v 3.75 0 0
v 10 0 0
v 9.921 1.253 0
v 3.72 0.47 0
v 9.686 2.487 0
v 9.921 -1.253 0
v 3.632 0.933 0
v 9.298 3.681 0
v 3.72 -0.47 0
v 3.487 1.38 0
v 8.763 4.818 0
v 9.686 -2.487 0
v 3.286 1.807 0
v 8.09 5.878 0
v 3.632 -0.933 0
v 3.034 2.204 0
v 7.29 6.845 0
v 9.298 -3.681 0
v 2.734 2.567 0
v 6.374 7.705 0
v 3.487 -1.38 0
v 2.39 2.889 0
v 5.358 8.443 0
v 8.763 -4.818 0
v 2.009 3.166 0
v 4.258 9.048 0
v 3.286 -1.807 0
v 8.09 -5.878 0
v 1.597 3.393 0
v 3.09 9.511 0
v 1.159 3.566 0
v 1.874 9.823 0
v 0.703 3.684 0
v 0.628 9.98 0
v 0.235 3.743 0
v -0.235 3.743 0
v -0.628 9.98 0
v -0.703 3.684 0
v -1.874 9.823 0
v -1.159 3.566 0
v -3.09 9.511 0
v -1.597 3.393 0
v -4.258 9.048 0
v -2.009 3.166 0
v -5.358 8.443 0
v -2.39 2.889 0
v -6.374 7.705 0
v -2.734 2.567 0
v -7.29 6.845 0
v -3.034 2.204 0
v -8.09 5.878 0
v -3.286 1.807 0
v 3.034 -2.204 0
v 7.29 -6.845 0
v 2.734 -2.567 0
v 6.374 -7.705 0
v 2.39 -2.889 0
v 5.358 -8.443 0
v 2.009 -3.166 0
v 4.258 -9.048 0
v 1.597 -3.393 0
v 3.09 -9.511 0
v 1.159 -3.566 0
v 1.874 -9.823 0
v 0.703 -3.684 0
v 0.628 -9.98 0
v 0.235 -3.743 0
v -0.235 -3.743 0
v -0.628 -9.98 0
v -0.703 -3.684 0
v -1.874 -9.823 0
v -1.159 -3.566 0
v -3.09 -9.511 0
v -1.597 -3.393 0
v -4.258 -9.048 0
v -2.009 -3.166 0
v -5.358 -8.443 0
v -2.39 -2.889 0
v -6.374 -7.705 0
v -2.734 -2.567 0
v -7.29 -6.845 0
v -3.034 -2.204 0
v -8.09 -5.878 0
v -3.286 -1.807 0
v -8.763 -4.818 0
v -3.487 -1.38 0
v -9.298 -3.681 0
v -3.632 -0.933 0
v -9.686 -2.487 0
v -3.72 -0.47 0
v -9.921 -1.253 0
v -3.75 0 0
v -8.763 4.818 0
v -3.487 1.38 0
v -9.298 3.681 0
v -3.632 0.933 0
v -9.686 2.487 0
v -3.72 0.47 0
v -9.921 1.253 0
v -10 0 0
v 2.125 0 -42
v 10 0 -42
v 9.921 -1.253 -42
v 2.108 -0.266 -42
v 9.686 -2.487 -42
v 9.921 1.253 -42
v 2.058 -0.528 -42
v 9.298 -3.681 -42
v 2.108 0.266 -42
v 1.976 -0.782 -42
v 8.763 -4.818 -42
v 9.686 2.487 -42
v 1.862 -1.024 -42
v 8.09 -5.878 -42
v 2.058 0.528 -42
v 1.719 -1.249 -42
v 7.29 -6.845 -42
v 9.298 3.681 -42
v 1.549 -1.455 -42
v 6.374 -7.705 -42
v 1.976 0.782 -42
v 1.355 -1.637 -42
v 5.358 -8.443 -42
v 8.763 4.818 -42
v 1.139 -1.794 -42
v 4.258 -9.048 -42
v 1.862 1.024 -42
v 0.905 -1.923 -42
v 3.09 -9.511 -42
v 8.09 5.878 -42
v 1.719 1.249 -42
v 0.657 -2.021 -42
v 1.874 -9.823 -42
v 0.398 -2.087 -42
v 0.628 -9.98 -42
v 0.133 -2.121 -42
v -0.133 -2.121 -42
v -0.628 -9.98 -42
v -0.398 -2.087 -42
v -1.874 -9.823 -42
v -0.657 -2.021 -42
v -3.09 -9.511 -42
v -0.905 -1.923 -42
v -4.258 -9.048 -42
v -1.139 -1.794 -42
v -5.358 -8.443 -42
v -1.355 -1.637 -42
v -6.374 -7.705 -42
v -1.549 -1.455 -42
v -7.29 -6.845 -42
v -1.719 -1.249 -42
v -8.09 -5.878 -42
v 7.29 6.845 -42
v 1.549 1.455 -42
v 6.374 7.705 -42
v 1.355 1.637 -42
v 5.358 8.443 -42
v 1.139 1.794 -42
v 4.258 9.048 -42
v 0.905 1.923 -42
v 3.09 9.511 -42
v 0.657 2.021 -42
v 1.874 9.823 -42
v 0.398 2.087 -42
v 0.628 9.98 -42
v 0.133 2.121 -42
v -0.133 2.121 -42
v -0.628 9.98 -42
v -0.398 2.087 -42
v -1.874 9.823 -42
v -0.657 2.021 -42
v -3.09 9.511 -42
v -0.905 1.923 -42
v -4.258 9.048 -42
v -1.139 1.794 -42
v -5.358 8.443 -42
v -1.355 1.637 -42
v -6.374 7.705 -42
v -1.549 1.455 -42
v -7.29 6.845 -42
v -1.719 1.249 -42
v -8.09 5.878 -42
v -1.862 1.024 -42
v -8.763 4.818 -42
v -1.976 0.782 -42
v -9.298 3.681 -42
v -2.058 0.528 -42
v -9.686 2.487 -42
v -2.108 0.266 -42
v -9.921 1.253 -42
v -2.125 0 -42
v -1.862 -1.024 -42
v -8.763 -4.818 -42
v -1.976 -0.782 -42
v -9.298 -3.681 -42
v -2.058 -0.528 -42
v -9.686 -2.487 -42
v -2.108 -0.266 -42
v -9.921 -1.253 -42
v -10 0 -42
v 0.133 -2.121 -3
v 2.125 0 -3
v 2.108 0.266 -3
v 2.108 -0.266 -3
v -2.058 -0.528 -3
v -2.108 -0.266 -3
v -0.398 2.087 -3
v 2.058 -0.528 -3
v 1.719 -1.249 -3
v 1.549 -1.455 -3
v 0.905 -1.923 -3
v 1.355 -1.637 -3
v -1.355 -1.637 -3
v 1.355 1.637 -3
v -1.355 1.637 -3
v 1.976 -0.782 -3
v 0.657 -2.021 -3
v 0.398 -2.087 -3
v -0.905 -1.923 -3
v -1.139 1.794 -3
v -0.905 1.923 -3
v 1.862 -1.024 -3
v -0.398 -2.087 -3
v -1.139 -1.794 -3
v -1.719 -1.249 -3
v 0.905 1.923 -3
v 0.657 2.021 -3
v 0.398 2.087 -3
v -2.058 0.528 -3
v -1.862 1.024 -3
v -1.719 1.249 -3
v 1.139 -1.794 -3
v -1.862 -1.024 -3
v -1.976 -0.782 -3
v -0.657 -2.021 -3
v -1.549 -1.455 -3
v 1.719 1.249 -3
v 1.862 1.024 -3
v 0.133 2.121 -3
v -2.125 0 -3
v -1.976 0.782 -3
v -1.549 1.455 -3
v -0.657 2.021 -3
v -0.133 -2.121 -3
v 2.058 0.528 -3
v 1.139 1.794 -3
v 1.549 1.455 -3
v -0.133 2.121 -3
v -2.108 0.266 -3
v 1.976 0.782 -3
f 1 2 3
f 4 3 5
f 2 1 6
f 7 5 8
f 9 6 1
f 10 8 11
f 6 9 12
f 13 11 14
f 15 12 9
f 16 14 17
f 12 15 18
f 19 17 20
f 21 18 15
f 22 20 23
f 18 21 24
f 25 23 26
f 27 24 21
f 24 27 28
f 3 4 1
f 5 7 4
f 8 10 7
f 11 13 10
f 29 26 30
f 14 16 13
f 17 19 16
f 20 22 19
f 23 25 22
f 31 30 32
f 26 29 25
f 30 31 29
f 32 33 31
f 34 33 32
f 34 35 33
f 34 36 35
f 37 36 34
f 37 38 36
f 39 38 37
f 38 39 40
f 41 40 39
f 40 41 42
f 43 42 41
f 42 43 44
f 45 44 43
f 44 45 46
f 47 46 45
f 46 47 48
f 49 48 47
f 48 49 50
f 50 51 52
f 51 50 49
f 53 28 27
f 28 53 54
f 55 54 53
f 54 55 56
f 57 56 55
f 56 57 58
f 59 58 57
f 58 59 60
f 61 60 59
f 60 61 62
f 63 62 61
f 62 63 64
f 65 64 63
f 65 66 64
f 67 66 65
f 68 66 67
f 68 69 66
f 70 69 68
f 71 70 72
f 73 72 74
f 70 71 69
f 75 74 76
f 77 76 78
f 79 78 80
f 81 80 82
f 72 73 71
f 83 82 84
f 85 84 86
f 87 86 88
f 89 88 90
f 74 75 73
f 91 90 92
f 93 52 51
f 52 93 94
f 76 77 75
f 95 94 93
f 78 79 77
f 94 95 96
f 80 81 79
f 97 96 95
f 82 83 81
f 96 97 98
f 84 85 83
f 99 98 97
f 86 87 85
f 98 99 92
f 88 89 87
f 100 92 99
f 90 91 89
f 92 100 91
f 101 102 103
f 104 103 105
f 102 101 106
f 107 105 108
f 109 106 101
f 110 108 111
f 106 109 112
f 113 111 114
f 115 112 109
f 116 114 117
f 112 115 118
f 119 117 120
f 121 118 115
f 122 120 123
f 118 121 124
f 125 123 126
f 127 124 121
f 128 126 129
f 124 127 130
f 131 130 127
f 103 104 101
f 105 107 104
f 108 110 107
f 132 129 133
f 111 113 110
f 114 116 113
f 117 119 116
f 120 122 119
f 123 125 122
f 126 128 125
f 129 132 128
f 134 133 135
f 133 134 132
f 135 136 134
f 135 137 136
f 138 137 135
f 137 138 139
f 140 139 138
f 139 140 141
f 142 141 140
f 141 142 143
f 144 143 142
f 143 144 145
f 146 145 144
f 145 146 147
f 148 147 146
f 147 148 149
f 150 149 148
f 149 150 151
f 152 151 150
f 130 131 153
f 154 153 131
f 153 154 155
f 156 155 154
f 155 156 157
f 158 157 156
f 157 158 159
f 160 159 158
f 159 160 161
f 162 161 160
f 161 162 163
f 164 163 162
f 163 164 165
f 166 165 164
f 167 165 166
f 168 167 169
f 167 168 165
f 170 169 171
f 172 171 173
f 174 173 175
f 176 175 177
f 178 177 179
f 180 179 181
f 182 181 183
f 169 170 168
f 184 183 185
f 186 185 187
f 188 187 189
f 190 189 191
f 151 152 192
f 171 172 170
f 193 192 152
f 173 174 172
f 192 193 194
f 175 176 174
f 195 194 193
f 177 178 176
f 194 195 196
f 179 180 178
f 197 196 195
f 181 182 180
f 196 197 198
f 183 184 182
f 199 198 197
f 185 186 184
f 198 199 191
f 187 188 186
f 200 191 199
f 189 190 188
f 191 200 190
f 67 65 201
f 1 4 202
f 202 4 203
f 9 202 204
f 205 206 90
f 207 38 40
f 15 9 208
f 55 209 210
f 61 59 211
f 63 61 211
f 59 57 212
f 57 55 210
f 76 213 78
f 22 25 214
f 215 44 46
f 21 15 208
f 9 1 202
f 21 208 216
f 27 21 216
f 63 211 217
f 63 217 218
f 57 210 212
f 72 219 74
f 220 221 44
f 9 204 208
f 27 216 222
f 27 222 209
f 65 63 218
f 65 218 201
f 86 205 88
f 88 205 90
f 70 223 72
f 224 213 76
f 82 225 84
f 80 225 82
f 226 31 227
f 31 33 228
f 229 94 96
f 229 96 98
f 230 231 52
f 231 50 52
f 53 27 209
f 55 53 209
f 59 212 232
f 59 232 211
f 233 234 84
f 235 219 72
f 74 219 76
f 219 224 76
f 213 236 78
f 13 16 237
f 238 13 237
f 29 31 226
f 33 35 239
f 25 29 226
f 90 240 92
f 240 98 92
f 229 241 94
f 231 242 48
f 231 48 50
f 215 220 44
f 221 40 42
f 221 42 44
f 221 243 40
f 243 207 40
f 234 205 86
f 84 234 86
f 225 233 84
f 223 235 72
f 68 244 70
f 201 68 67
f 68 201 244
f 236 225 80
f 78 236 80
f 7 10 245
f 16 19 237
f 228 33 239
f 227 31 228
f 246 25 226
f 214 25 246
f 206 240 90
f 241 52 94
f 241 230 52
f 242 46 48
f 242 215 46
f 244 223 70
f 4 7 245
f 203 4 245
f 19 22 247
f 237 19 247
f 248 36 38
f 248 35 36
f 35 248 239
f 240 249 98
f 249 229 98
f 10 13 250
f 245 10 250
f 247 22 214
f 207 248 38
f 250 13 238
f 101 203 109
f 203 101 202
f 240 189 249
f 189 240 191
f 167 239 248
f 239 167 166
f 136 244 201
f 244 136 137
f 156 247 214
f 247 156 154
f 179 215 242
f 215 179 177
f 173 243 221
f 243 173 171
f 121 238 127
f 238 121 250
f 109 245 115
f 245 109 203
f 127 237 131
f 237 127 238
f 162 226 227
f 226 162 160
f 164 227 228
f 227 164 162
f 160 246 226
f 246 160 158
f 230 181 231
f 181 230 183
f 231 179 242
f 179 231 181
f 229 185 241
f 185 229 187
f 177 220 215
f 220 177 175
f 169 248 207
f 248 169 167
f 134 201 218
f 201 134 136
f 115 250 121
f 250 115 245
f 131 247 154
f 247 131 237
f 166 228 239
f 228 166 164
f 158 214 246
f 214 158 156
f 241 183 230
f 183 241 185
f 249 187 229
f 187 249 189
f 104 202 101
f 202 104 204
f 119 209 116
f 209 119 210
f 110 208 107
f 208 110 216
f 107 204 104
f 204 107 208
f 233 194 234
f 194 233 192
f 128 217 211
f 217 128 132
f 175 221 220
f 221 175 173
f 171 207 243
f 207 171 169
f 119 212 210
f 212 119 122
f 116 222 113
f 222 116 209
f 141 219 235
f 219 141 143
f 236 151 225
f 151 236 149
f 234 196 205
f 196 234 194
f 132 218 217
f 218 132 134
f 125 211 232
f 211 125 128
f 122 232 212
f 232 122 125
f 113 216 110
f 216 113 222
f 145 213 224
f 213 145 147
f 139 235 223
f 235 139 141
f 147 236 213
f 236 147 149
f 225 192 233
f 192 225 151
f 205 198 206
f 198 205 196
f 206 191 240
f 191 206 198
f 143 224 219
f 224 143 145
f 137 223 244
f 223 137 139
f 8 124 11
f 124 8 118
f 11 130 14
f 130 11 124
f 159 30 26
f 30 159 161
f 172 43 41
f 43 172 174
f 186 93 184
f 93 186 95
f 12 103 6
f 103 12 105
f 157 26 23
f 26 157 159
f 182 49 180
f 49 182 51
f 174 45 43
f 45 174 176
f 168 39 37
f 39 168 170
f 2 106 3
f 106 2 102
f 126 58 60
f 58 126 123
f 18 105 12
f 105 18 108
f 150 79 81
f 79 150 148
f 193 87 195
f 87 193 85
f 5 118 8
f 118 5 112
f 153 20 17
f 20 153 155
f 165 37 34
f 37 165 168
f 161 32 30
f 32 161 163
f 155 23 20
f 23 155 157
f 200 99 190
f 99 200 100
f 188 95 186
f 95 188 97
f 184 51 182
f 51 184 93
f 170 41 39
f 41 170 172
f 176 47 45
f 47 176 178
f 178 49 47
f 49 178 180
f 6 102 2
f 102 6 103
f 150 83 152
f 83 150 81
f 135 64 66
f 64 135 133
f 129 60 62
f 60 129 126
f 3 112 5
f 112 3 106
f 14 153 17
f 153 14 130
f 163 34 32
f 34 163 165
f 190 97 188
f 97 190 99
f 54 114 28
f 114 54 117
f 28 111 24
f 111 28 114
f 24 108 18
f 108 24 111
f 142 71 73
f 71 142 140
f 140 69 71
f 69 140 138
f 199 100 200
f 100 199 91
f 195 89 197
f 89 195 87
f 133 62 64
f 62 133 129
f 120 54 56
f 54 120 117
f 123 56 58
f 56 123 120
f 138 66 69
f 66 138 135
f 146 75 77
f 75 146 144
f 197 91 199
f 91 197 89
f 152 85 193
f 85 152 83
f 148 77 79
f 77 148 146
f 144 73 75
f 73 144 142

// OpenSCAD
$fn = 50;


difference() {
	union() {
		translate(v = [0, 0, -42.0000000000]) {
			cylinder(h = 42, r = 10.0000000000);
		}
	}
	union() {
		translate(v = [0, 0, 0]) {
			rotate(a = [0, 0, 0]) {
				difference() {
					union() {
						#translate(v = [0, 0, -42.0000000000]) {
							cylinder(h = 42, r = 2.0000000000);
						}
						#translate(v = [0, 0, -3]) {
							cylinder(h = 3, r1 = 2.1250000000, r2 = 3.7500000000);
						}
						#translate(v = [0, 0, -42.0000000000]) {
							cylinder(h = 42, r = 2.1250000000);
						}
						#translate(v = [0, 0, -42.0000000000]) {
							cylinder(h = 42, r = 2.0000000000);
						}
					}
					union();
				}
			}
		}
	}
}
